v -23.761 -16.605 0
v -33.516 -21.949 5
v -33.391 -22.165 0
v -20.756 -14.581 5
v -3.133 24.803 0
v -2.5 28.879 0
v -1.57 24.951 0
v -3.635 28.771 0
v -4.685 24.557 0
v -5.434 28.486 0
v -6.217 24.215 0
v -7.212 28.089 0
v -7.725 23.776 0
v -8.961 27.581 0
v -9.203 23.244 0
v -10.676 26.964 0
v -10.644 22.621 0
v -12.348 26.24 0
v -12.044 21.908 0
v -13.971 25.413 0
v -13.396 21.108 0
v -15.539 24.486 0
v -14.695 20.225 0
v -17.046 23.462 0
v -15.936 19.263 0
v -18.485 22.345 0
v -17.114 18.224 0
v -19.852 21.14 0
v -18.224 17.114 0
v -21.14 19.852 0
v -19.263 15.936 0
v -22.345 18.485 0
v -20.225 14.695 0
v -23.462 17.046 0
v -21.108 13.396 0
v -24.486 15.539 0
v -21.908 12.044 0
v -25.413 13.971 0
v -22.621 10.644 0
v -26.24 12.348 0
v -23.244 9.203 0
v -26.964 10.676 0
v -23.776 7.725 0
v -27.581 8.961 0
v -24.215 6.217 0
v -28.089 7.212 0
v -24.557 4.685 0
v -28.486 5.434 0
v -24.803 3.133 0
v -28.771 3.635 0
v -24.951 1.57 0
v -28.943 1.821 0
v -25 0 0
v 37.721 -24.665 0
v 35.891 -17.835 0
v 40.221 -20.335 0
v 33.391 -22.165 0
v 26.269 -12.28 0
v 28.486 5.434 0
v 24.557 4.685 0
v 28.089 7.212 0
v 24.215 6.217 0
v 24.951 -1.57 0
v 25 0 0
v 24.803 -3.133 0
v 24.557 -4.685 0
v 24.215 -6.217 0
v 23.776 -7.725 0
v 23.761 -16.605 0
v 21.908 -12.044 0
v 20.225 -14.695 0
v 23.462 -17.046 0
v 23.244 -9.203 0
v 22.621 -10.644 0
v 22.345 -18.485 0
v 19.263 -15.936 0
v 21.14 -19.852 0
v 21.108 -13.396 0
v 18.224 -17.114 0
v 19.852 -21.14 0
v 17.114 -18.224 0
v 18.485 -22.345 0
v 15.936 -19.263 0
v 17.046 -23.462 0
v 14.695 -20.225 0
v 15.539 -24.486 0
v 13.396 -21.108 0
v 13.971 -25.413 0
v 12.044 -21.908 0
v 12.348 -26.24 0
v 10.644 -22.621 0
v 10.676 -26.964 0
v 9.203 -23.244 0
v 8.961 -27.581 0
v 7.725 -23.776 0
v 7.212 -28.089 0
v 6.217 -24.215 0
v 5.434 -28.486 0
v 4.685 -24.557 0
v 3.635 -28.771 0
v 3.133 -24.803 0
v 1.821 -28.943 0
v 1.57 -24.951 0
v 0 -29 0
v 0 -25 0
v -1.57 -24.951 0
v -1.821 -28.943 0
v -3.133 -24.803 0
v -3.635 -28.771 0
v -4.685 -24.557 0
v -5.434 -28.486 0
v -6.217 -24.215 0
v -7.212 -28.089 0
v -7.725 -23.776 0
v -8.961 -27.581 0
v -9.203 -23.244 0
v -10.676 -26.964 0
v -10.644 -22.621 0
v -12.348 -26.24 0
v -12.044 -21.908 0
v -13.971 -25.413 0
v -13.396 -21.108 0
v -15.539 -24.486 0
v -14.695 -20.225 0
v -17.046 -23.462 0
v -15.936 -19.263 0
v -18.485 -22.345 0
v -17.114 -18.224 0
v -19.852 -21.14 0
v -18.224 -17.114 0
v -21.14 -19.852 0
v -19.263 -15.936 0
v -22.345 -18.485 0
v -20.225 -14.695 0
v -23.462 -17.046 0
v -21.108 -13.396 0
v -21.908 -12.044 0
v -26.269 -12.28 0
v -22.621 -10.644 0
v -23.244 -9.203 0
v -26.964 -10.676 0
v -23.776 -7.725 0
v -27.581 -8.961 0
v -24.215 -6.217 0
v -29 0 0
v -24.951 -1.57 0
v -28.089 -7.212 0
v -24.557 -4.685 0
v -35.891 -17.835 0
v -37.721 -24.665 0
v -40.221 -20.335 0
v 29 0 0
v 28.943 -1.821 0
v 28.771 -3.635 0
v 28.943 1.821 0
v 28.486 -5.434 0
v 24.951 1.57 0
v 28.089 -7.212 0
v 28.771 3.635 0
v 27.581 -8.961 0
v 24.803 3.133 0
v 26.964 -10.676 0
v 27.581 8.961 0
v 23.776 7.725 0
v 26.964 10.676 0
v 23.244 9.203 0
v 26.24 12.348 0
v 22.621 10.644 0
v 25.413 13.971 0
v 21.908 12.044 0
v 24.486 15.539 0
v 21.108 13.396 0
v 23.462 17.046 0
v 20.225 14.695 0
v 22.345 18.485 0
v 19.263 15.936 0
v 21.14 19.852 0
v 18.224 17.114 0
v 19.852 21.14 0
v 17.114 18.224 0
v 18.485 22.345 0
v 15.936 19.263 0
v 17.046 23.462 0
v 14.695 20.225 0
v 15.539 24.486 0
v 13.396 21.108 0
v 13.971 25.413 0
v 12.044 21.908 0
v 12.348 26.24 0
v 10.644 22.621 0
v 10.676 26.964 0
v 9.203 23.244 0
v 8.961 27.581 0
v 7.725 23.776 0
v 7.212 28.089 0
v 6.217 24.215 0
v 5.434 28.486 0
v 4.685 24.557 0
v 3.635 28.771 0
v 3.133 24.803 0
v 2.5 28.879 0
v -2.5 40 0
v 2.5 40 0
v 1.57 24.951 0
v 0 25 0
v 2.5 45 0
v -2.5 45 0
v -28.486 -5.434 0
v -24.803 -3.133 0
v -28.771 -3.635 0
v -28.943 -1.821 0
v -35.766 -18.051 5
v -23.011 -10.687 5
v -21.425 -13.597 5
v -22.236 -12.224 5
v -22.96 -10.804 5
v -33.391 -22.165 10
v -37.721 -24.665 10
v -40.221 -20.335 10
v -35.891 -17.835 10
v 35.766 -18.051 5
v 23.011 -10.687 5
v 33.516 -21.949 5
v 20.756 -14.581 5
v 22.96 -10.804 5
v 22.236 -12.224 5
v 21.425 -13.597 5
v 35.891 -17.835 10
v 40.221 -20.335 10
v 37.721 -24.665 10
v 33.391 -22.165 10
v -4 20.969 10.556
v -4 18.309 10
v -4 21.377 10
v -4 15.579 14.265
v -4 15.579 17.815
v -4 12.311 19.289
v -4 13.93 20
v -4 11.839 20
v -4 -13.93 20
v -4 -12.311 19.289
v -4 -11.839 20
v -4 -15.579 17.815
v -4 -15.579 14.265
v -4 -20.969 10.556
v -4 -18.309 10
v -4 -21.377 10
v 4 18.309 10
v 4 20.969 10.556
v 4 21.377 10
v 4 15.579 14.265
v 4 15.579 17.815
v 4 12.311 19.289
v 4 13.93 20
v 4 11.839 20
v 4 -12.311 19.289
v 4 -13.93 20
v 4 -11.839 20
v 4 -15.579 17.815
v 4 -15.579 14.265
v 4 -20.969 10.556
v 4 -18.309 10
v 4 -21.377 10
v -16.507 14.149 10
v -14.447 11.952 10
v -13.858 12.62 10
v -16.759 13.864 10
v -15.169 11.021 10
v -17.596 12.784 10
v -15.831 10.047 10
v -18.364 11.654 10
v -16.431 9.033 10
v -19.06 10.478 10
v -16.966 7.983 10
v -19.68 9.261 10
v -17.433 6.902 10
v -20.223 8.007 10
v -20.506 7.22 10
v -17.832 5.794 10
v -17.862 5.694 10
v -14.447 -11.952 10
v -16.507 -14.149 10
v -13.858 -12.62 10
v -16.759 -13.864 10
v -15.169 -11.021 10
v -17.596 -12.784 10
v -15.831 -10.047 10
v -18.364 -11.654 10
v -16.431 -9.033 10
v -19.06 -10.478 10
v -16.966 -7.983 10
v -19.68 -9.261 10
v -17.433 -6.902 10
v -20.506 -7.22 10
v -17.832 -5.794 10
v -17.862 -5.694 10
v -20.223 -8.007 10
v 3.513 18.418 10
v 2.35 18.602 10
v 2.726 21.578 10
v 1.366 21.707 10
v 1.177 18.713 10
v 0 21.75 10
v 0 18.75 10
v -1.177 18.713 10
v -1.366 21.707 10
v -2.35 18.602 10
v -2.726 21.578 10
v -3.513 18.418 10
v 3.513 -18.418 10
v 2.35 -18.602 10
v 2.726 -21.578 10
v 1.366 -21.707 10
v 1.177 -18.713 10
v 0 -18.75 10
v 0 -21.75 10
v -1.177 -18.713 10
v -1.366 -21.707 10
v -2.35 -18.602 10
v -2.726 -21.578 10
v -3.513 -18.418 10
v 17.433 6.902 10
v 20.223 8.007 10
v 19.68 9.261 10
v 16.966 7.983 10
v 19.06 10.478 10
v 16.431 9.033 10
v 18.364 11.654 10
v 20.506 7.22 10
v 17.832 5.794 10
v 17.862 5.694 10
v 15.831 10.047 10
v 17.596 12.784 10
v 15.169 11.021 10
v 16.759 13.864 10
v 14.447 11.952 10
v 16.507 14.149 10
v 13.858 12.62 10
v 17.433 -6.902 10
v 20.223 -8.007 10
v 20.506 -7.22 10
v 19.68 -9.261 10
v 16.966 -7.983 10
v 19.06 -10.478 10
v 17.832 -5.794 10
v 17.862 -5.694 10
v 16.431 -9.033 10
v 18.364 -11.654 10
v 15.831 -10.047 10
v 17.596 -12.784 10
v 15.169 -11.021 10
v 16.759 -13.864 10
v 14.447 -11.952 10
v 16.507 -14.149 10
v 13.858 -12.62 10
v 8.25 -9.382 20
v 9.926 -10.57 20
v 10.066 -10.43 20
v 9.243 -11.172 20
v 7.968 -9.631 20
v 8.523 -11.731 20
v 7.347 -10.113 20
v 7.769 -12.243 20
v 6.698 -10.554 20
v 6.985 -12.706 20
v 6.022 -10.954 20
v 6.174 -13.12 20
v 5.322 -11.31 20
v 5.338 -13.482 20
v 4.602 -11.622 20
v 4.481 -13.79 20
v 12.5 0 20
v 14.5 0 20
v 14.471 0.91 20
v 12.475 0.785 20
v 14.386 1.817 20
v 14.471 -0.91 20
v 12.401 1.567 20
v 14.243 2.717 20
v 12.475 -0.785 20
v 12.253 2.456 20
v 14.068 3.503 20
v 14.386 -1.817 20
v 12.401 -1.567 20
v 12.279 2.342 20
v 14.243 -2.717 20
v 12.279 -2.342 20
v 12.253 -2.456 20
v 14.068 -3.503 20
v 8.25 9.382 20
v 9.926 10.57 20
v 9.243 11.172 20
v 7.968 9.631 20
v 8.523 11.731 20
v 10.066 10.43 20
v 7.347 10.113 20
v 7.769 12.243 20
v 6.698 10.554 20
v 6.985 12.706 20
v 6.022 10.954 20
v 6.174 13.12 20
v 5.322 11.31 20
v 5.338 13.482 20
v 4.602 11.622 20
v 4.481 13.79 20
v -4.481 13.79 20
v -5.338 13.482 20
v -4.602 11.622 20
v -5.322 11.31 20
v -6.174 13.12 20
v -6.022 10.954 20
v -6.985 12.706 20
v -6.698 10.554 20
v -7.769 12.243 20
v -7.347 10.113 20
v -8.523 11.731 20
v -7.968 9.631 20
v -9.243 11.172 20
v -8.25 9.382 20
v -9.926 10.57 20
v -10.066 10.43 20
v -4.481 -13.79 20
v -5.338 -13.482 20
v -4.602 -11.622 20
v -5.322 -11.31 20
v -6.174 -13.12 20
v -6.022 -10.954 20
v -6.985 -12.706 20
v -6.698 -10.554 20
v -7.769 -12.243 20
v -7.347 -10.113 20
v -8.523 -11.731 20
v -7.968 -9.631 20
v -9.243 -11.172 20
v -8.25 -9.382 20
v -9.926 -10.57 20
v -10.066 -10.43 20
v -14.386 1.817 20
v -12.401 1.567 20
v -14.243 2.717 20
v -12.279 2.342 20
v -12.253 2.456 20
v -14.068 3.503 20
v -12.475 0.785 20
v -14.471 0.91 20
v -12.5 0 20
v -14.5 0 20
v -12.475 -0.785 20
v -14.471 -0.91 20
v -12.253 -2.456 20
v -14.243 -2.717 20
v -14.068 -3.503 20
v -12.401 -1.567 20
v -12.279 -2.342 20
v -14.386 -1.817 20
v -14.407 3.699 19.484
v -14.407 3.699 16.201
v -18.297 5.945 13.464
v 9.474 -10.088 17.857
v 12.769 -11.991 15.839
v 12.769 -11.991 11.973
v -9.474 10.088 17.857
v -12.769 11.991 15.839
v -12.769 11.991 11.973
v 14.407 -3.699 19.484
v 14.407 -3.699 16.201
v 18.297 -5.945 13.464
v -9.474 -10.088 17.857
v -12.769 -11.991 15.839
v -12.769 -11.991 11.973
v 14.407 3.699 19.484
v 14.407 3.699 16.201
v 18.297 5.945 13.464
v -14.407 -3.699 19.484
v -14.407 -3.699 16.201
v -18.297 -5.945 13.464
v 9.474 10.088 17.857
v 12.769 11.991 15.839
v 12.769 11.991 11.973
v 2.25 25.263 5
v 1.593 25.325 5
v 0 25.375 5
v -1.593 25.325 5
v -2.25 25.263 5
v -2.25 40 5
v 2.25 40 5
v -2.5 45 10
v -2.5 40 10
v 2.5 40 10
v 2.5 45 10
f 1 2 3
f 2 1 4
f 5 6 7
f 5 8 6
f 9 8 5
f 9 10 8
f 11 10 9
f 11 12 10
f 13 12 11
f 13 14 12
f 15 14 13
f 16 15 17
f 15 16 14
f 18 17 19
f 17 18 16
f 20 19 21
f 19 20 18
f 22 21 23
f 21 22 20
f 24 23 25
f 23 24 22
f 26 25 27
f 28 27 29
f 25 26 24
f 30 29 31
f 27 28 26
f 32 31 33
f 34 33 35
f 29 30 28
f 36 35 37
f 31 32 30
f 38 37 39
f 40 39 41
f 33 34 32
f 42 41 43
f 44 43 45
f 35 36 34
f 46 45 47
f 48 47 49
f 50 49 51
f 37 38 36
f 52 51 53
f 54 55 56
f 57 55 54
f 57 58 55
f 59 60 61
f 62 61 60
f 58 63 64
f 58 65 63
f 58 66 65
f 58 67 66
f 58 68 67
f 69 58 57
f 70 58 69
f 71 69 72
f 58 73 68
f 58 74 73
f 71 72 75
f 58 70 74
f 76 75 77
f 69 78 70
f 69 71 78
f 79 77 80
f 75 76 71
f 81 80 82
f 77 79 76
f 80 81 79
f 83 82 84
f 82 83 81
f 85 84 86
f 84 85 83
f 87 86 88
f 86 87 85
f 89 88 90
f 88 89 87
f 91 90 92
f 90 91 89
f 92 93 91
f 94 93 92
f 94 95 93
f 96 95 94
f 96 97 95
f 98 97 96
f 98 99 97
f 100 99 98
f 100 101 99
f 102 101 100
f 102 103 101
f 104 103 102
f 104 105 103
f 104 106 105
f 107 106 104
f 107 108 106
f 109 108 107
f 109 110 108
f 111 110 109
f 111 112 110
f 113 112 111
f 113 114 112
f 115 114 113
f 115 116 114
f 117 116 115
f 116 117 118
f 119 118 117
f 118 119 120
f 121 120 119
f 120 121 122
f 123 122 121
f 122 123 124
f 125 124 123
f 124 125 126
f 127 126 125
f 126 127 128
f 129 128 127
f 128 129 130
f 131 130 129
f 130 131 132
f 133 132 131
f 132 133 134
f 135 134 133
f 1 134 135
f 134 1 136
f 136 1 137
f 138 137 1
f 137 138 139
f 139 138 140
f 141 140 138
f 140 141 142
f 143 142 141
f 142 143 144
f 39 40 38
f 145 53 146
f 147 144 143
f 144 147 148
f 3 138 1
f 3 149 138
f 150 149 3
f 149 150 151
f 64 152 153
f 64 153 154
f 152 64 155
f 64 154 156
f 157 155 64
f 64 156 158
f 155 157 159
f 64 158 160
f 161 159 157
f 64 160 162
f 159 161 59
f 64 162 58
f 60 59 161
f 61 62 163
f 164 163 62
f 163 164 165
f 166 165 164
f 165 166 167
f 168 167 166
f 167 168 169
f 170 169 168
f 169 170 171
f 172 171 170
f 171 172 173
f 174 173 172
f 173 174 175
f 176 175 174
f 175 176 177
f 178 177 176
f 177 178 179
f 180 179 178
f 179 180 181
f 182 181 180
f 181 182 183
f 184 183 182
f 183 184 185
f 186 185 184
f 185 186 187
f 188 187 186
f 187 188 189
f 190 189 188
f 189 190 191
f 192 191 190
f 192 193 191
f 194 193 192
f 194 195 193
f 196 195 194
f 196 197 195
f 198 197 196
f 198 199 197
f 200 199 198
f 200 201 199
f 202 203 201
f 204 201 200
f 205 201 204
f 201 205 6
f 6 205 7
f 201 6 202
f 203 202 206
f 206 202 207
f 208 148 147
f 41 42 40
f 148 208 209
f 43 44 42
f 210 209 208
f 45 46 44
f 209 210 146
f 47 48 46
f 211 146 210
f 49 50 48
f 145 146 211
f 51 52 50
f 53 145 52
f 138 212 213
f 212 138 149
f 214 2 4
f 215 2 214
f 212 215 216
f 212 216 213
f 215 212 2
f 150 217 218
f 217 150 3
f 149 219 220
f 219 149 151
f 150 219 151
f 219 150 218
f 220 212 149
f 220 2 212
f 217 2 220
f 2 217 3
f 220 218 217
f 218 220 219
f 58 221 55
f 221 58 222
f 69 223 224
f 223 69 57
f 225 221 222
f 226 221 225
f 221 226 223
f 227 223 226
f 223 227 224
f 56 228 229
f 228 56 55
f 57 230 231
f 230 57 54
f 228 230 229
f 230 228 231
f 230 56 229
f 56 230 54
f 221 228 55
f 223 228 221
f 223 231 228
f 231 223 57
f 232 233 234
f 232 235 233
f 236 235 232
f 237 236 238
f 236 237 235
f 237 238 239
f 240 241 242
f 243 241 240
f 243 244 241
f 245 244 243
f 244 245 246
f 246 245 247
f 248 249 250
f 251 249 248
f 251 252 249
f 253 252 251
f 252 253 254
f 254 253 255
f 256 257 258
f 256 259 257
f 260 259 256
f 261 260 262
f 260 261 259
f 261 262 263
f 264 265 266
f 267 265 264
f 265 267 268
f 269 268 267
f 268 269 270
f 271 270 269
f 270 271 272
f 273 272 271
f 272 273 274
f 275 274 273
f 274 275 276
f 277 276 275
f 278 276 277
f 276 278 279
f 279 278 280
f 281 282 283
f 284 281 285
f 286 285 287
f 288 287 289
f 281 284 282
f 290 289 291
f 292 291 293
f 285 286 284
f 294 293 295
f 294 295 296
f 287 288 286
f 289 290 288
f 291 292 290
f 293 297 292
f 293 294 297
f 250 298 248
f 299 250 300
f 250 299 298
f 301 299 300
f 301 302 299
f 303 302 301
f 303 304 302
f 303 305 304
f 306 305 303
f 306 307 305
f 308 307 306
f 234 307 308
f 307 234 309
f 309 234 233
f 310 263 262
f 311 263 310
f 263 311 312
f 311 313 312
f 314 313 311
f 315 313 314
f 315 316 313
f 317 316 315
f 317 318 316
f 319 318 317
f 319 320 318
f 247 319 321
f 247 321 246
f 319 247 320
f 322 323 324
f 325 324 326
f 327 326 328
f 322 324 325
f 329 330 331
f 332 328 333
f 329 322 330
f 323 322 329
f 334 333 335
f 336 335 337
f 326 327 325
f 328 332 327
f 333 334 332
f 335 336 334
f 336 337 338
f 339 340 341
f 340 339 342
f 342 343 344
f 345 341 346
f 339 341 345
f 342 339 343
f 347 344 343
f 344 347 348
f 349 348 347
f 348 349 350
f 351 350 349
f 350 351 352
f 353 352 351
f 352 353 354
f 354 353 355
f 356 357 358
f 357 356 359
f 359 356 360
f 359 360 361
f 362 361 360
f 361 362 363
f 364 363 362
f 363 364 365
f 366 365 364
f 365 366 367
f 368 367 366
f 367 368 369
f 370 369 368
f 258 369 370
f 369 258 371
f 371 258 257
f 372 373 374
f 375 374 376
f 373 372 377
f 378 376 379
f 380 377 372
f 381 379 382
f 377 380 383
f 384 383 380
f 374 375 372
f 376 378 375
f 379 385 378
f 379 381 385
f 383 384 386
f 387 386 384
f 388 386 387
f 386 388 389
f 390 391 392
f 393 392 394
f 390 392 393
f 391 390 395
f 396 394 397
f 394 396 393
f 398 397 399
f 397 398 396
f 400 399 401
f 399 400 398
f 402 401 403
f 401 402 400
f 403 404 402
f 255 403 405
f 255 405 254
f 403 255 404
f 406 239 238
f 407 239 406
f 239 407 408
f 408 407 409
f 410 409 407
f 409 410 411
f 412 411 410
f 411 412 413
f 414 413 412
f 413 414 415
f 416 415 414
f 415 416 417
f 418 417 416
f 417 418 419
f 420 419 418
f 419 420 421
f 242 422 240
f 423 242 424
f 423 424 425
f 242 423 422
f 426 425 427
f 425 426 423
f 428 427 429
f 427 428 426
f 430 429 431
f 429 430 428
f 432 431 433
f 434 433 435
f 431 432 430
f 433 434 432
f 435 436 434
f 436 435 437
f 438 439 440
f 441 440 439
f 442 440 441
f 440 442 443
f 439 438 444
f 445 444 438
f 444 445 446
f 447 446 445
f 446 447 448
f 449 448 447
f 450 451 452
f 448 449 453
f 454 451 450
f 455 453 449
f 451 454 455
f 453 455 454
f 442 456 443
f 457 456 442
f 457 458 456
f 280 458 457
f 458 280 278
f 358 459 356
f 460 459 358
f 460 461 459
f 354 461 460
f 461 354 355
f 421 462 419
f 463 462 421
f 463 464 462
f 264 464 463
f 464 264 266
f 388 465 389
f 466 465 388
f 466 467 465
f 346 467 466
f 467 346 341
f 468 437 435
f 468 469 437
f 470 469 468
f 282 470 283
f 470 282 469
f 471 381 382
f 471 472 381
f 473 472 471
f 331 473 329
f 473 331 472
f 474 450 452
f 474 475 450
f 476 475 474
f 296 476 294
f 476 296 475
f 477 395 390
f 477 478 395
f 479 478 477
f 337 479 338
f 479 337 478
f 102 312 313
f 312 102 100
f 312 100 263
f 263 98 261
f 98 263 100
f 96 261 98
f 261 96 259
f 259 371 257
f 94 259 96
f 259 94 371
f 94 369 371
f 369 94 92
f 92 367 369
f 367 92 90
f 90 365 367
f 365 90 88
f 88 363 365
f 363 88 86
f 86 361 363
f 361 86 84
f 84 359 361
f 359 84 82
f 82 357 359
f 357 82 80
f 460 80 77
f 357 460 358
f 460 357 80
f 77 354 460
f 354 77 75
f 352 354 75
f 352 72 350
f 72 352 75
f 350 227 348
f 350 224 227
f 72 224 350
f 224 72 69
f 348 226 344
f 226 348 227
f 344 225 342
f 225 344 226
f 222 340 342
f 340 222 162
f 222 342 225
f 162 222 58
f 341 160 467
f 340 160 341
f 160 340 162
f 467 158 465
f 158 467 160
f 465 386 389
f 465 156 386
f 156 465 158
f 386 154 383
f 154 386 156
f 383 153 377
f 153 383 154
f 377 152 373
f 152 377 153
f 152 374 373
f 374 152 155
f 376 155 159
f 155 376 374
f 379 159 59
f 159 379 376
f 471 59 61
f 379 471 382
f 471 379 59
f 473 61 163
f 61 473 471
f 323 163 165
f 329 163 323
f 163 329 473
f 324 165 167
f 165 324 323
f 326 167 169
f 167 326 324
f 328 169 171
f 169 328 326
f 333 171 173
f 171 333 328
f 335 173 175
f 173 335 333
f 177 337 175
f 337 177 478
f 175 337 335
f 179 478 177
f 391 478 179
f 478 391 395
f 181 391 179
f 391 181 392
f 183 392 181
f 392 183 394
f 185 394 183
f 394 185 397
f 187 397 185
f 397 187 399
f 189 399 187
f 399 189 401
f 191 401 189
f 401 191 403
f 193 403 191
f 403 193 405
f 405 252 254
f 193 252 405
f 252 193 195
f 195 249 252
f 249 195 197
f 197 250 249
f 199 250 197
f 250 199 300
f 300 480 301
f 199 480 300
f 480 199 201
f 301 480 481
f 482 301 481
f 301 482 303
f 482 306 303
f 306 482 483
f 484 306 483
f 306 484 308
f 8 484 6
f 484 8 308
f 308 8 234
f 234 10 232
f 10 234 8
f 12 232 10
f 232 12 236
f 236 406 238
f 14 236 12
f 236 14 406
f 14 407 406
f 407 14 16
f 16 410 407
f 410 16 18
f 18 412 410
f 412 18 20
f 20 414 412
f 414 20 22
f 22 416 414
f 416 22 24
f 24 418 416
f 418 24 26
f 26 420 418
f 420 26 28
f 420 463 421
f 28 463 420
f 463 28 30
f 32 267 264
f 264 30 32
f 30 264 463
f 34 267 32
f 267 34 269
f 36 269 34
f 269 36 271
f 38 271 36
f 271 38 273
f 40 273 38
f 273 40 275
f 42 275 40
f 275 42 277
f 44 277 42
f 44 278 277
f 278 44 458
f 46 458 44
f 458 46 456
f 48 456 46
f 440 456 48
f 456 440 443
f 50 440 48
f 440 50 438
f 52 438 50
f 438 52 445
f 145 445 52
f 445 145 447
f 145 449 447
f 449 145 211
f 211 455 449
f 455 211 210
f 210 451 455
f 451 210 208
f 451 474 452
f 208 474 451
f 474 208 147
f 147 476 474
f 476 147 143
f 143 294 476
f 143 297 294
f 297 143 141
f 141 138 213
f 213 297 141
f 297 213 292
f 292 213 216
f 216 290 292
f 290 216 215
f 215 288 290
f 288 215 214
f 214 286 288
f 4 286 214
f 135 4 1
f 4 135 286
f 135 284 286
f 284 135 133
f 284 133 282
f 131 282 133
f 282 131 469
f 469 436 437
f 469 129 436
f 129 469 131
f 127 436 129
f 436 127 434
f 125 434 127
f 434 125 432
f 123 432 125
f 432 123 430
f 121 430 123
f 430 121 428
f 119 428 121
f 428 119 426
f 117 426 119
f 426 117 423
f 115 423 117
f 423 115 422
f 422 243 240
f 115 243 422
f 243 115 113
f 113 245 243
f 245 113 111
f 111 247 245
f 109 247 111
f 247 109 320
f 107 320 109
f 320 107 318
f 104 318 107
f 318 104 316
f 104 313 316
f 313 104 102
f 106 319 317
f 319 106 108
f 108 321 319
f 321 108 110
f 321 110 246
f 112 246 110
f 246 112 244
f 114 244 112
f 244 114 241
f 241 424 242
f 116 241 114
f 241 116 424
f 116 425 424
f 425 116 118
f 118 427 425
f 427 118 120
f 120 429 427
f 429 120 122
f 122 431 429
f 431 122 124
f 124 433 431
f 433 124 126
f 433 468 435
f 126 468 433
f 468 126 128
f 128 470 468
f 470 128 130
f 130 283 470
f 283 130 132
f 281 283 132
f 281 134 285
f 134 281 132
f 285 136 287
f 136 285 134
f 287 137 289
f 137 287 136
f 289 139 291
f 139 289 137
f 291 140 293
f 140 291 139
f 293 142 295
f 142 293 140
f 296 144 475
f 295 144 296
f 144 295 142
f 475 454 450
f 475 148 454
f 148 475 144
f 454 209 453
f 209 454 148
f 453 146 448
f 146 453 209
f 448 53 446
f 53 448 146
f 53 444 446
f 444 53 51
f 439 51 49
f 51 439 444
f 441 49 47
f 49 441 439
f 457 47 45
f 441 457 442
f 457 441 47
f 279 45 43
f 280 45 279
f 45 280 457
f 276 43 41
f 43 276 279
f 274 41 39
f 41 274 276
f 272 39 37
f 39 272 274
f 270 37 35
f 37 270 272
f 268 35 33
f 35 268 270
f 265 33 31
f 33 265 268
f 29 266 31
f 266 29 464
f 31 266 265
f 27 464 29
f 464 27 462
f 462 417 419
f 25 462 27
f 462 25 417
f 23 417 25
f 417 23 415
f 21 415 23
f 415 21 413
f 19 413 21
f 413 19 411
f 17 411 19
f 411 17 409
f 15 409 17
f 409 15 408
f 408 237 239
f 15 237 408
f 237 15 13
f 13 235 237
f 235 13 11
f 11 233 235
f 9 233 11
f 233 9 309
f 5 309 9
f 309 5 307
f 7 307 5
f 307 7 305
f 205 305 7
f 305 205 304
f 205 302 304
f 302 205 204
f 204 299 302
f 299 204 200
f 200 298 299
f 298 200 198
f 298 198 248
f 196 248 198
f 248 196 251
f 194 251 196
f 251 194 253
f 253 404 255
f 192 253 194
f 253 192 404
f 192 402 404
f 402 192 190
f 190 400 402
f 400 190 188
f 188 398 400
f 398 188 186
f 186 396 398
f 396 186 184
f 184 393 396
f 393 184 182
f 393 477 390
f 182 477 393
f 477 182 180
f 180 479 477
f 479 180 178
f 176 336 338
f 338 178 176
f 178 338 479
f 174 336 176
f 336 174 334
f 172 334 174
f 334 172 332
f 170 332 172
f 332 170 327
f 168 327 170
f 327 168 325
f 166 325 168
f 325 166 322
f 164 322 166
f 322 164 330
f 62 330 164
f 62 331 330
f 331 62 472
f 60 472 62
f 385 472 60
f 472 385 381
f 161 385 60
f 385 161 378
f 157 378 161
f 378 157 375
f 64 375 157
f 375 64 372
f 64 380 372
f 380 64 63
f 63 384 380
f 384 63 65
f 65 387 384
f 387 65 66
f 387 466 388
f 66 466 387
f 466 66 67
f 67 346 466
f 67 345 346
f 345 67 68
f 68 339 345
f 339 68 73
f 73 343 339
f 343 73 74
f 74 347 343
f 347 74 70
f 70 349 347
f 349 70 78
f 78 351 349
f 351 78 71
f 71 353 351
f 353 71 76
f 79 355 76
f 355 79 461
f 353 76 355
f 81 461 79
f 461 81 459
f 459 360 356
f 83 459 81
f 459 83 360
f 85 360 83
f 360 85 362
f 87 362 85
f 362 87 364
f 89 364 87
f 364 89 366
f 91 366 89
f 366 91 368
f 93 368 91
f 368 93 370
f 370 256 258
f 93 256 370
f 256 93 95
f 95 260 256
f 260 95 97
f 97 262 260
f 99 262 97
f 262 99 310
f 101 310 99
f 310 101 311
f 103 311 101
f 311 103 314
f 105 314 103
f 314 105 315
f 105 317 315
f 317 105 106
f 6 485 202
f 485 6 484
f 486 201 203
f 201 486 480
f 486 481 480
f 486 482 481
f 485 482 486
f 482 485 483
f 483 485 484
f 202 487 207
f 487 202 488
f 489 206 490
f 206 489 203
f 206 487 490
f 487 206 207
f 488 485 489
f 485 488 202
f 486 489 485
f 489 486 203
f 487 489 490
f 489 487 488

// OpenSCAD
$fn=100;
linear_extrude (5, scale=0.9) polygon ([[-2.5, 25], [2.5, 25], [2.5, 45], [-2.5, 45]]);
linear_extrude (10) polygon ([[-2.5, 40], [2.5, 40], [2.5, 45], [-2.5, 45]]);
rotate (120) {
    linear_extrude (5, scale=0.9) polygon ([[-2.5, 25], [2.5, 25], [2.5, 45], [-2.5, 45]]);
    linear_extrude (10) polygon ([[-2.5, 40], [2.5, 40], [2.5, 45], [-2.5, 45]]);
}
rotate (240) {
    linear_extrude (5, scale=0.9) polygon ([[-2.5, 25], [2.5, 25], [2.5, 45], [-2.5, 45]]);
    linear_extrude (10) polygon ([[-2.5, 40], [2.5, 40], [2.5, 45], [-2.5, 45]]);
}
difference () {
    linear_extrude (20, scale=0.5) {
        difference () {
            circle (29);
            circle (25);
        }
    }
    translate ([0, 0, 10]) {
        linear_extrude (10) polygon ([[-4, -30], [4, -30], [4, 30], [-4, 30]]);
        rotate (60) linear_extrude (10) polygon ([[-4, -30], [4, -30], [4, 30], [-4, 30]]);
        rotate (120) linear_extrude (10) polygon ([[-4, -30], [4, -30], [4, 30], [-4, 30]]);
    }
}
